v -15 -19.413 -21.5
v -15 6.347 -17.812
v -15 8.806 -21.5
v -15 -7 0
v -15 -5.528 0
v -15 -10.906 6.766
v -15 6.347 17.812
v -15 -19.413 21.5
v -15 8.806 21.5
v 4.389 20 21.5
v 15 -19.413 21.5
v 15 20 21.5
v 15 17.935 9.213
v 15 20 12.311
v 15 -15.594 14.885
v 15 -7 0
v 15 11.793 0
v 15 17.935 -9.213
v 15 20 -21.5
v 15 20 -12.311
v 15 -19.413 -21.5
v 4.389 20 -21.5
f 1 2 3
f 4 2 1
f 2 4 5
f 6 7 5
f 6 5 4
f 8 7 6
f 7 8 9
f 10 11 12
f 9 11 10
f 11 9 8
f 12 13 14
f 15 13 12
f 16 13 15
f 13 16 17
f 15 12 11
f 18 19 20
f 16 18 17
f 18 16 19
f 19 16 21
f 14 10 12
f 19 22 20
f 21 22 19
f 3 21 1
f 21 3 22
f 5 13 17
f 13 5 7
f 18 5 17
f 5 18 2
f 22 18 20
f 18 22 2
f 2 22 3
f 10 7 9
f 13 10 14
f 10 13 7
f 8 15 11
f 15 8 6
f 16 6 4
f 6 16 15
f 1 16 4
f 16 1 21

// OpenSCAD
difference(){
  cube(center = true, size = [30, 40, 43]);
  translate(v = [0, 32, 0]){
    rotate(a = [90, 0, 120]){
      linear_extrude(center = true, height = 80){
        circle($fn = 6, r = 25);
      }
    }
  }
  translate(v = [0, -32, 0]){
    rotate(a = [90, 0, 90]){
      linear_extrude(center = true, height = 80){
        circle($fn = 6, r = 25);
      }
    }
  }
}
